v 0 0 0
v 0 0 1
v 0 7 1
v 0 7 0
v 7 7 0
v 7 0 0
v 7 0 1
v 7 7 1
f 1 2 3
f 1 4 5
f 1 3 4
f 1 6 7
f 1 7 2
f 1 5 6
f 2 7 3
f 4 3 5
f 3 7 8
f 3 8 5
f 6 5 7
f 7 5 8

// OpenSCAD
/* Warning, this is a very basic generator with a lot of approximation 
input data : [TQFP, 2ZB, 7x7x1.0mm, 48, , B, C04-21016B]
generated by com.zoubworld.electronics.cad.model3d.Basic
Date : Sun Feb 15 10:50:49 CET 2026
*/

//body
color("black")
translate([0,0,0])
cube([7.0,7.0,1.0], center=false);
